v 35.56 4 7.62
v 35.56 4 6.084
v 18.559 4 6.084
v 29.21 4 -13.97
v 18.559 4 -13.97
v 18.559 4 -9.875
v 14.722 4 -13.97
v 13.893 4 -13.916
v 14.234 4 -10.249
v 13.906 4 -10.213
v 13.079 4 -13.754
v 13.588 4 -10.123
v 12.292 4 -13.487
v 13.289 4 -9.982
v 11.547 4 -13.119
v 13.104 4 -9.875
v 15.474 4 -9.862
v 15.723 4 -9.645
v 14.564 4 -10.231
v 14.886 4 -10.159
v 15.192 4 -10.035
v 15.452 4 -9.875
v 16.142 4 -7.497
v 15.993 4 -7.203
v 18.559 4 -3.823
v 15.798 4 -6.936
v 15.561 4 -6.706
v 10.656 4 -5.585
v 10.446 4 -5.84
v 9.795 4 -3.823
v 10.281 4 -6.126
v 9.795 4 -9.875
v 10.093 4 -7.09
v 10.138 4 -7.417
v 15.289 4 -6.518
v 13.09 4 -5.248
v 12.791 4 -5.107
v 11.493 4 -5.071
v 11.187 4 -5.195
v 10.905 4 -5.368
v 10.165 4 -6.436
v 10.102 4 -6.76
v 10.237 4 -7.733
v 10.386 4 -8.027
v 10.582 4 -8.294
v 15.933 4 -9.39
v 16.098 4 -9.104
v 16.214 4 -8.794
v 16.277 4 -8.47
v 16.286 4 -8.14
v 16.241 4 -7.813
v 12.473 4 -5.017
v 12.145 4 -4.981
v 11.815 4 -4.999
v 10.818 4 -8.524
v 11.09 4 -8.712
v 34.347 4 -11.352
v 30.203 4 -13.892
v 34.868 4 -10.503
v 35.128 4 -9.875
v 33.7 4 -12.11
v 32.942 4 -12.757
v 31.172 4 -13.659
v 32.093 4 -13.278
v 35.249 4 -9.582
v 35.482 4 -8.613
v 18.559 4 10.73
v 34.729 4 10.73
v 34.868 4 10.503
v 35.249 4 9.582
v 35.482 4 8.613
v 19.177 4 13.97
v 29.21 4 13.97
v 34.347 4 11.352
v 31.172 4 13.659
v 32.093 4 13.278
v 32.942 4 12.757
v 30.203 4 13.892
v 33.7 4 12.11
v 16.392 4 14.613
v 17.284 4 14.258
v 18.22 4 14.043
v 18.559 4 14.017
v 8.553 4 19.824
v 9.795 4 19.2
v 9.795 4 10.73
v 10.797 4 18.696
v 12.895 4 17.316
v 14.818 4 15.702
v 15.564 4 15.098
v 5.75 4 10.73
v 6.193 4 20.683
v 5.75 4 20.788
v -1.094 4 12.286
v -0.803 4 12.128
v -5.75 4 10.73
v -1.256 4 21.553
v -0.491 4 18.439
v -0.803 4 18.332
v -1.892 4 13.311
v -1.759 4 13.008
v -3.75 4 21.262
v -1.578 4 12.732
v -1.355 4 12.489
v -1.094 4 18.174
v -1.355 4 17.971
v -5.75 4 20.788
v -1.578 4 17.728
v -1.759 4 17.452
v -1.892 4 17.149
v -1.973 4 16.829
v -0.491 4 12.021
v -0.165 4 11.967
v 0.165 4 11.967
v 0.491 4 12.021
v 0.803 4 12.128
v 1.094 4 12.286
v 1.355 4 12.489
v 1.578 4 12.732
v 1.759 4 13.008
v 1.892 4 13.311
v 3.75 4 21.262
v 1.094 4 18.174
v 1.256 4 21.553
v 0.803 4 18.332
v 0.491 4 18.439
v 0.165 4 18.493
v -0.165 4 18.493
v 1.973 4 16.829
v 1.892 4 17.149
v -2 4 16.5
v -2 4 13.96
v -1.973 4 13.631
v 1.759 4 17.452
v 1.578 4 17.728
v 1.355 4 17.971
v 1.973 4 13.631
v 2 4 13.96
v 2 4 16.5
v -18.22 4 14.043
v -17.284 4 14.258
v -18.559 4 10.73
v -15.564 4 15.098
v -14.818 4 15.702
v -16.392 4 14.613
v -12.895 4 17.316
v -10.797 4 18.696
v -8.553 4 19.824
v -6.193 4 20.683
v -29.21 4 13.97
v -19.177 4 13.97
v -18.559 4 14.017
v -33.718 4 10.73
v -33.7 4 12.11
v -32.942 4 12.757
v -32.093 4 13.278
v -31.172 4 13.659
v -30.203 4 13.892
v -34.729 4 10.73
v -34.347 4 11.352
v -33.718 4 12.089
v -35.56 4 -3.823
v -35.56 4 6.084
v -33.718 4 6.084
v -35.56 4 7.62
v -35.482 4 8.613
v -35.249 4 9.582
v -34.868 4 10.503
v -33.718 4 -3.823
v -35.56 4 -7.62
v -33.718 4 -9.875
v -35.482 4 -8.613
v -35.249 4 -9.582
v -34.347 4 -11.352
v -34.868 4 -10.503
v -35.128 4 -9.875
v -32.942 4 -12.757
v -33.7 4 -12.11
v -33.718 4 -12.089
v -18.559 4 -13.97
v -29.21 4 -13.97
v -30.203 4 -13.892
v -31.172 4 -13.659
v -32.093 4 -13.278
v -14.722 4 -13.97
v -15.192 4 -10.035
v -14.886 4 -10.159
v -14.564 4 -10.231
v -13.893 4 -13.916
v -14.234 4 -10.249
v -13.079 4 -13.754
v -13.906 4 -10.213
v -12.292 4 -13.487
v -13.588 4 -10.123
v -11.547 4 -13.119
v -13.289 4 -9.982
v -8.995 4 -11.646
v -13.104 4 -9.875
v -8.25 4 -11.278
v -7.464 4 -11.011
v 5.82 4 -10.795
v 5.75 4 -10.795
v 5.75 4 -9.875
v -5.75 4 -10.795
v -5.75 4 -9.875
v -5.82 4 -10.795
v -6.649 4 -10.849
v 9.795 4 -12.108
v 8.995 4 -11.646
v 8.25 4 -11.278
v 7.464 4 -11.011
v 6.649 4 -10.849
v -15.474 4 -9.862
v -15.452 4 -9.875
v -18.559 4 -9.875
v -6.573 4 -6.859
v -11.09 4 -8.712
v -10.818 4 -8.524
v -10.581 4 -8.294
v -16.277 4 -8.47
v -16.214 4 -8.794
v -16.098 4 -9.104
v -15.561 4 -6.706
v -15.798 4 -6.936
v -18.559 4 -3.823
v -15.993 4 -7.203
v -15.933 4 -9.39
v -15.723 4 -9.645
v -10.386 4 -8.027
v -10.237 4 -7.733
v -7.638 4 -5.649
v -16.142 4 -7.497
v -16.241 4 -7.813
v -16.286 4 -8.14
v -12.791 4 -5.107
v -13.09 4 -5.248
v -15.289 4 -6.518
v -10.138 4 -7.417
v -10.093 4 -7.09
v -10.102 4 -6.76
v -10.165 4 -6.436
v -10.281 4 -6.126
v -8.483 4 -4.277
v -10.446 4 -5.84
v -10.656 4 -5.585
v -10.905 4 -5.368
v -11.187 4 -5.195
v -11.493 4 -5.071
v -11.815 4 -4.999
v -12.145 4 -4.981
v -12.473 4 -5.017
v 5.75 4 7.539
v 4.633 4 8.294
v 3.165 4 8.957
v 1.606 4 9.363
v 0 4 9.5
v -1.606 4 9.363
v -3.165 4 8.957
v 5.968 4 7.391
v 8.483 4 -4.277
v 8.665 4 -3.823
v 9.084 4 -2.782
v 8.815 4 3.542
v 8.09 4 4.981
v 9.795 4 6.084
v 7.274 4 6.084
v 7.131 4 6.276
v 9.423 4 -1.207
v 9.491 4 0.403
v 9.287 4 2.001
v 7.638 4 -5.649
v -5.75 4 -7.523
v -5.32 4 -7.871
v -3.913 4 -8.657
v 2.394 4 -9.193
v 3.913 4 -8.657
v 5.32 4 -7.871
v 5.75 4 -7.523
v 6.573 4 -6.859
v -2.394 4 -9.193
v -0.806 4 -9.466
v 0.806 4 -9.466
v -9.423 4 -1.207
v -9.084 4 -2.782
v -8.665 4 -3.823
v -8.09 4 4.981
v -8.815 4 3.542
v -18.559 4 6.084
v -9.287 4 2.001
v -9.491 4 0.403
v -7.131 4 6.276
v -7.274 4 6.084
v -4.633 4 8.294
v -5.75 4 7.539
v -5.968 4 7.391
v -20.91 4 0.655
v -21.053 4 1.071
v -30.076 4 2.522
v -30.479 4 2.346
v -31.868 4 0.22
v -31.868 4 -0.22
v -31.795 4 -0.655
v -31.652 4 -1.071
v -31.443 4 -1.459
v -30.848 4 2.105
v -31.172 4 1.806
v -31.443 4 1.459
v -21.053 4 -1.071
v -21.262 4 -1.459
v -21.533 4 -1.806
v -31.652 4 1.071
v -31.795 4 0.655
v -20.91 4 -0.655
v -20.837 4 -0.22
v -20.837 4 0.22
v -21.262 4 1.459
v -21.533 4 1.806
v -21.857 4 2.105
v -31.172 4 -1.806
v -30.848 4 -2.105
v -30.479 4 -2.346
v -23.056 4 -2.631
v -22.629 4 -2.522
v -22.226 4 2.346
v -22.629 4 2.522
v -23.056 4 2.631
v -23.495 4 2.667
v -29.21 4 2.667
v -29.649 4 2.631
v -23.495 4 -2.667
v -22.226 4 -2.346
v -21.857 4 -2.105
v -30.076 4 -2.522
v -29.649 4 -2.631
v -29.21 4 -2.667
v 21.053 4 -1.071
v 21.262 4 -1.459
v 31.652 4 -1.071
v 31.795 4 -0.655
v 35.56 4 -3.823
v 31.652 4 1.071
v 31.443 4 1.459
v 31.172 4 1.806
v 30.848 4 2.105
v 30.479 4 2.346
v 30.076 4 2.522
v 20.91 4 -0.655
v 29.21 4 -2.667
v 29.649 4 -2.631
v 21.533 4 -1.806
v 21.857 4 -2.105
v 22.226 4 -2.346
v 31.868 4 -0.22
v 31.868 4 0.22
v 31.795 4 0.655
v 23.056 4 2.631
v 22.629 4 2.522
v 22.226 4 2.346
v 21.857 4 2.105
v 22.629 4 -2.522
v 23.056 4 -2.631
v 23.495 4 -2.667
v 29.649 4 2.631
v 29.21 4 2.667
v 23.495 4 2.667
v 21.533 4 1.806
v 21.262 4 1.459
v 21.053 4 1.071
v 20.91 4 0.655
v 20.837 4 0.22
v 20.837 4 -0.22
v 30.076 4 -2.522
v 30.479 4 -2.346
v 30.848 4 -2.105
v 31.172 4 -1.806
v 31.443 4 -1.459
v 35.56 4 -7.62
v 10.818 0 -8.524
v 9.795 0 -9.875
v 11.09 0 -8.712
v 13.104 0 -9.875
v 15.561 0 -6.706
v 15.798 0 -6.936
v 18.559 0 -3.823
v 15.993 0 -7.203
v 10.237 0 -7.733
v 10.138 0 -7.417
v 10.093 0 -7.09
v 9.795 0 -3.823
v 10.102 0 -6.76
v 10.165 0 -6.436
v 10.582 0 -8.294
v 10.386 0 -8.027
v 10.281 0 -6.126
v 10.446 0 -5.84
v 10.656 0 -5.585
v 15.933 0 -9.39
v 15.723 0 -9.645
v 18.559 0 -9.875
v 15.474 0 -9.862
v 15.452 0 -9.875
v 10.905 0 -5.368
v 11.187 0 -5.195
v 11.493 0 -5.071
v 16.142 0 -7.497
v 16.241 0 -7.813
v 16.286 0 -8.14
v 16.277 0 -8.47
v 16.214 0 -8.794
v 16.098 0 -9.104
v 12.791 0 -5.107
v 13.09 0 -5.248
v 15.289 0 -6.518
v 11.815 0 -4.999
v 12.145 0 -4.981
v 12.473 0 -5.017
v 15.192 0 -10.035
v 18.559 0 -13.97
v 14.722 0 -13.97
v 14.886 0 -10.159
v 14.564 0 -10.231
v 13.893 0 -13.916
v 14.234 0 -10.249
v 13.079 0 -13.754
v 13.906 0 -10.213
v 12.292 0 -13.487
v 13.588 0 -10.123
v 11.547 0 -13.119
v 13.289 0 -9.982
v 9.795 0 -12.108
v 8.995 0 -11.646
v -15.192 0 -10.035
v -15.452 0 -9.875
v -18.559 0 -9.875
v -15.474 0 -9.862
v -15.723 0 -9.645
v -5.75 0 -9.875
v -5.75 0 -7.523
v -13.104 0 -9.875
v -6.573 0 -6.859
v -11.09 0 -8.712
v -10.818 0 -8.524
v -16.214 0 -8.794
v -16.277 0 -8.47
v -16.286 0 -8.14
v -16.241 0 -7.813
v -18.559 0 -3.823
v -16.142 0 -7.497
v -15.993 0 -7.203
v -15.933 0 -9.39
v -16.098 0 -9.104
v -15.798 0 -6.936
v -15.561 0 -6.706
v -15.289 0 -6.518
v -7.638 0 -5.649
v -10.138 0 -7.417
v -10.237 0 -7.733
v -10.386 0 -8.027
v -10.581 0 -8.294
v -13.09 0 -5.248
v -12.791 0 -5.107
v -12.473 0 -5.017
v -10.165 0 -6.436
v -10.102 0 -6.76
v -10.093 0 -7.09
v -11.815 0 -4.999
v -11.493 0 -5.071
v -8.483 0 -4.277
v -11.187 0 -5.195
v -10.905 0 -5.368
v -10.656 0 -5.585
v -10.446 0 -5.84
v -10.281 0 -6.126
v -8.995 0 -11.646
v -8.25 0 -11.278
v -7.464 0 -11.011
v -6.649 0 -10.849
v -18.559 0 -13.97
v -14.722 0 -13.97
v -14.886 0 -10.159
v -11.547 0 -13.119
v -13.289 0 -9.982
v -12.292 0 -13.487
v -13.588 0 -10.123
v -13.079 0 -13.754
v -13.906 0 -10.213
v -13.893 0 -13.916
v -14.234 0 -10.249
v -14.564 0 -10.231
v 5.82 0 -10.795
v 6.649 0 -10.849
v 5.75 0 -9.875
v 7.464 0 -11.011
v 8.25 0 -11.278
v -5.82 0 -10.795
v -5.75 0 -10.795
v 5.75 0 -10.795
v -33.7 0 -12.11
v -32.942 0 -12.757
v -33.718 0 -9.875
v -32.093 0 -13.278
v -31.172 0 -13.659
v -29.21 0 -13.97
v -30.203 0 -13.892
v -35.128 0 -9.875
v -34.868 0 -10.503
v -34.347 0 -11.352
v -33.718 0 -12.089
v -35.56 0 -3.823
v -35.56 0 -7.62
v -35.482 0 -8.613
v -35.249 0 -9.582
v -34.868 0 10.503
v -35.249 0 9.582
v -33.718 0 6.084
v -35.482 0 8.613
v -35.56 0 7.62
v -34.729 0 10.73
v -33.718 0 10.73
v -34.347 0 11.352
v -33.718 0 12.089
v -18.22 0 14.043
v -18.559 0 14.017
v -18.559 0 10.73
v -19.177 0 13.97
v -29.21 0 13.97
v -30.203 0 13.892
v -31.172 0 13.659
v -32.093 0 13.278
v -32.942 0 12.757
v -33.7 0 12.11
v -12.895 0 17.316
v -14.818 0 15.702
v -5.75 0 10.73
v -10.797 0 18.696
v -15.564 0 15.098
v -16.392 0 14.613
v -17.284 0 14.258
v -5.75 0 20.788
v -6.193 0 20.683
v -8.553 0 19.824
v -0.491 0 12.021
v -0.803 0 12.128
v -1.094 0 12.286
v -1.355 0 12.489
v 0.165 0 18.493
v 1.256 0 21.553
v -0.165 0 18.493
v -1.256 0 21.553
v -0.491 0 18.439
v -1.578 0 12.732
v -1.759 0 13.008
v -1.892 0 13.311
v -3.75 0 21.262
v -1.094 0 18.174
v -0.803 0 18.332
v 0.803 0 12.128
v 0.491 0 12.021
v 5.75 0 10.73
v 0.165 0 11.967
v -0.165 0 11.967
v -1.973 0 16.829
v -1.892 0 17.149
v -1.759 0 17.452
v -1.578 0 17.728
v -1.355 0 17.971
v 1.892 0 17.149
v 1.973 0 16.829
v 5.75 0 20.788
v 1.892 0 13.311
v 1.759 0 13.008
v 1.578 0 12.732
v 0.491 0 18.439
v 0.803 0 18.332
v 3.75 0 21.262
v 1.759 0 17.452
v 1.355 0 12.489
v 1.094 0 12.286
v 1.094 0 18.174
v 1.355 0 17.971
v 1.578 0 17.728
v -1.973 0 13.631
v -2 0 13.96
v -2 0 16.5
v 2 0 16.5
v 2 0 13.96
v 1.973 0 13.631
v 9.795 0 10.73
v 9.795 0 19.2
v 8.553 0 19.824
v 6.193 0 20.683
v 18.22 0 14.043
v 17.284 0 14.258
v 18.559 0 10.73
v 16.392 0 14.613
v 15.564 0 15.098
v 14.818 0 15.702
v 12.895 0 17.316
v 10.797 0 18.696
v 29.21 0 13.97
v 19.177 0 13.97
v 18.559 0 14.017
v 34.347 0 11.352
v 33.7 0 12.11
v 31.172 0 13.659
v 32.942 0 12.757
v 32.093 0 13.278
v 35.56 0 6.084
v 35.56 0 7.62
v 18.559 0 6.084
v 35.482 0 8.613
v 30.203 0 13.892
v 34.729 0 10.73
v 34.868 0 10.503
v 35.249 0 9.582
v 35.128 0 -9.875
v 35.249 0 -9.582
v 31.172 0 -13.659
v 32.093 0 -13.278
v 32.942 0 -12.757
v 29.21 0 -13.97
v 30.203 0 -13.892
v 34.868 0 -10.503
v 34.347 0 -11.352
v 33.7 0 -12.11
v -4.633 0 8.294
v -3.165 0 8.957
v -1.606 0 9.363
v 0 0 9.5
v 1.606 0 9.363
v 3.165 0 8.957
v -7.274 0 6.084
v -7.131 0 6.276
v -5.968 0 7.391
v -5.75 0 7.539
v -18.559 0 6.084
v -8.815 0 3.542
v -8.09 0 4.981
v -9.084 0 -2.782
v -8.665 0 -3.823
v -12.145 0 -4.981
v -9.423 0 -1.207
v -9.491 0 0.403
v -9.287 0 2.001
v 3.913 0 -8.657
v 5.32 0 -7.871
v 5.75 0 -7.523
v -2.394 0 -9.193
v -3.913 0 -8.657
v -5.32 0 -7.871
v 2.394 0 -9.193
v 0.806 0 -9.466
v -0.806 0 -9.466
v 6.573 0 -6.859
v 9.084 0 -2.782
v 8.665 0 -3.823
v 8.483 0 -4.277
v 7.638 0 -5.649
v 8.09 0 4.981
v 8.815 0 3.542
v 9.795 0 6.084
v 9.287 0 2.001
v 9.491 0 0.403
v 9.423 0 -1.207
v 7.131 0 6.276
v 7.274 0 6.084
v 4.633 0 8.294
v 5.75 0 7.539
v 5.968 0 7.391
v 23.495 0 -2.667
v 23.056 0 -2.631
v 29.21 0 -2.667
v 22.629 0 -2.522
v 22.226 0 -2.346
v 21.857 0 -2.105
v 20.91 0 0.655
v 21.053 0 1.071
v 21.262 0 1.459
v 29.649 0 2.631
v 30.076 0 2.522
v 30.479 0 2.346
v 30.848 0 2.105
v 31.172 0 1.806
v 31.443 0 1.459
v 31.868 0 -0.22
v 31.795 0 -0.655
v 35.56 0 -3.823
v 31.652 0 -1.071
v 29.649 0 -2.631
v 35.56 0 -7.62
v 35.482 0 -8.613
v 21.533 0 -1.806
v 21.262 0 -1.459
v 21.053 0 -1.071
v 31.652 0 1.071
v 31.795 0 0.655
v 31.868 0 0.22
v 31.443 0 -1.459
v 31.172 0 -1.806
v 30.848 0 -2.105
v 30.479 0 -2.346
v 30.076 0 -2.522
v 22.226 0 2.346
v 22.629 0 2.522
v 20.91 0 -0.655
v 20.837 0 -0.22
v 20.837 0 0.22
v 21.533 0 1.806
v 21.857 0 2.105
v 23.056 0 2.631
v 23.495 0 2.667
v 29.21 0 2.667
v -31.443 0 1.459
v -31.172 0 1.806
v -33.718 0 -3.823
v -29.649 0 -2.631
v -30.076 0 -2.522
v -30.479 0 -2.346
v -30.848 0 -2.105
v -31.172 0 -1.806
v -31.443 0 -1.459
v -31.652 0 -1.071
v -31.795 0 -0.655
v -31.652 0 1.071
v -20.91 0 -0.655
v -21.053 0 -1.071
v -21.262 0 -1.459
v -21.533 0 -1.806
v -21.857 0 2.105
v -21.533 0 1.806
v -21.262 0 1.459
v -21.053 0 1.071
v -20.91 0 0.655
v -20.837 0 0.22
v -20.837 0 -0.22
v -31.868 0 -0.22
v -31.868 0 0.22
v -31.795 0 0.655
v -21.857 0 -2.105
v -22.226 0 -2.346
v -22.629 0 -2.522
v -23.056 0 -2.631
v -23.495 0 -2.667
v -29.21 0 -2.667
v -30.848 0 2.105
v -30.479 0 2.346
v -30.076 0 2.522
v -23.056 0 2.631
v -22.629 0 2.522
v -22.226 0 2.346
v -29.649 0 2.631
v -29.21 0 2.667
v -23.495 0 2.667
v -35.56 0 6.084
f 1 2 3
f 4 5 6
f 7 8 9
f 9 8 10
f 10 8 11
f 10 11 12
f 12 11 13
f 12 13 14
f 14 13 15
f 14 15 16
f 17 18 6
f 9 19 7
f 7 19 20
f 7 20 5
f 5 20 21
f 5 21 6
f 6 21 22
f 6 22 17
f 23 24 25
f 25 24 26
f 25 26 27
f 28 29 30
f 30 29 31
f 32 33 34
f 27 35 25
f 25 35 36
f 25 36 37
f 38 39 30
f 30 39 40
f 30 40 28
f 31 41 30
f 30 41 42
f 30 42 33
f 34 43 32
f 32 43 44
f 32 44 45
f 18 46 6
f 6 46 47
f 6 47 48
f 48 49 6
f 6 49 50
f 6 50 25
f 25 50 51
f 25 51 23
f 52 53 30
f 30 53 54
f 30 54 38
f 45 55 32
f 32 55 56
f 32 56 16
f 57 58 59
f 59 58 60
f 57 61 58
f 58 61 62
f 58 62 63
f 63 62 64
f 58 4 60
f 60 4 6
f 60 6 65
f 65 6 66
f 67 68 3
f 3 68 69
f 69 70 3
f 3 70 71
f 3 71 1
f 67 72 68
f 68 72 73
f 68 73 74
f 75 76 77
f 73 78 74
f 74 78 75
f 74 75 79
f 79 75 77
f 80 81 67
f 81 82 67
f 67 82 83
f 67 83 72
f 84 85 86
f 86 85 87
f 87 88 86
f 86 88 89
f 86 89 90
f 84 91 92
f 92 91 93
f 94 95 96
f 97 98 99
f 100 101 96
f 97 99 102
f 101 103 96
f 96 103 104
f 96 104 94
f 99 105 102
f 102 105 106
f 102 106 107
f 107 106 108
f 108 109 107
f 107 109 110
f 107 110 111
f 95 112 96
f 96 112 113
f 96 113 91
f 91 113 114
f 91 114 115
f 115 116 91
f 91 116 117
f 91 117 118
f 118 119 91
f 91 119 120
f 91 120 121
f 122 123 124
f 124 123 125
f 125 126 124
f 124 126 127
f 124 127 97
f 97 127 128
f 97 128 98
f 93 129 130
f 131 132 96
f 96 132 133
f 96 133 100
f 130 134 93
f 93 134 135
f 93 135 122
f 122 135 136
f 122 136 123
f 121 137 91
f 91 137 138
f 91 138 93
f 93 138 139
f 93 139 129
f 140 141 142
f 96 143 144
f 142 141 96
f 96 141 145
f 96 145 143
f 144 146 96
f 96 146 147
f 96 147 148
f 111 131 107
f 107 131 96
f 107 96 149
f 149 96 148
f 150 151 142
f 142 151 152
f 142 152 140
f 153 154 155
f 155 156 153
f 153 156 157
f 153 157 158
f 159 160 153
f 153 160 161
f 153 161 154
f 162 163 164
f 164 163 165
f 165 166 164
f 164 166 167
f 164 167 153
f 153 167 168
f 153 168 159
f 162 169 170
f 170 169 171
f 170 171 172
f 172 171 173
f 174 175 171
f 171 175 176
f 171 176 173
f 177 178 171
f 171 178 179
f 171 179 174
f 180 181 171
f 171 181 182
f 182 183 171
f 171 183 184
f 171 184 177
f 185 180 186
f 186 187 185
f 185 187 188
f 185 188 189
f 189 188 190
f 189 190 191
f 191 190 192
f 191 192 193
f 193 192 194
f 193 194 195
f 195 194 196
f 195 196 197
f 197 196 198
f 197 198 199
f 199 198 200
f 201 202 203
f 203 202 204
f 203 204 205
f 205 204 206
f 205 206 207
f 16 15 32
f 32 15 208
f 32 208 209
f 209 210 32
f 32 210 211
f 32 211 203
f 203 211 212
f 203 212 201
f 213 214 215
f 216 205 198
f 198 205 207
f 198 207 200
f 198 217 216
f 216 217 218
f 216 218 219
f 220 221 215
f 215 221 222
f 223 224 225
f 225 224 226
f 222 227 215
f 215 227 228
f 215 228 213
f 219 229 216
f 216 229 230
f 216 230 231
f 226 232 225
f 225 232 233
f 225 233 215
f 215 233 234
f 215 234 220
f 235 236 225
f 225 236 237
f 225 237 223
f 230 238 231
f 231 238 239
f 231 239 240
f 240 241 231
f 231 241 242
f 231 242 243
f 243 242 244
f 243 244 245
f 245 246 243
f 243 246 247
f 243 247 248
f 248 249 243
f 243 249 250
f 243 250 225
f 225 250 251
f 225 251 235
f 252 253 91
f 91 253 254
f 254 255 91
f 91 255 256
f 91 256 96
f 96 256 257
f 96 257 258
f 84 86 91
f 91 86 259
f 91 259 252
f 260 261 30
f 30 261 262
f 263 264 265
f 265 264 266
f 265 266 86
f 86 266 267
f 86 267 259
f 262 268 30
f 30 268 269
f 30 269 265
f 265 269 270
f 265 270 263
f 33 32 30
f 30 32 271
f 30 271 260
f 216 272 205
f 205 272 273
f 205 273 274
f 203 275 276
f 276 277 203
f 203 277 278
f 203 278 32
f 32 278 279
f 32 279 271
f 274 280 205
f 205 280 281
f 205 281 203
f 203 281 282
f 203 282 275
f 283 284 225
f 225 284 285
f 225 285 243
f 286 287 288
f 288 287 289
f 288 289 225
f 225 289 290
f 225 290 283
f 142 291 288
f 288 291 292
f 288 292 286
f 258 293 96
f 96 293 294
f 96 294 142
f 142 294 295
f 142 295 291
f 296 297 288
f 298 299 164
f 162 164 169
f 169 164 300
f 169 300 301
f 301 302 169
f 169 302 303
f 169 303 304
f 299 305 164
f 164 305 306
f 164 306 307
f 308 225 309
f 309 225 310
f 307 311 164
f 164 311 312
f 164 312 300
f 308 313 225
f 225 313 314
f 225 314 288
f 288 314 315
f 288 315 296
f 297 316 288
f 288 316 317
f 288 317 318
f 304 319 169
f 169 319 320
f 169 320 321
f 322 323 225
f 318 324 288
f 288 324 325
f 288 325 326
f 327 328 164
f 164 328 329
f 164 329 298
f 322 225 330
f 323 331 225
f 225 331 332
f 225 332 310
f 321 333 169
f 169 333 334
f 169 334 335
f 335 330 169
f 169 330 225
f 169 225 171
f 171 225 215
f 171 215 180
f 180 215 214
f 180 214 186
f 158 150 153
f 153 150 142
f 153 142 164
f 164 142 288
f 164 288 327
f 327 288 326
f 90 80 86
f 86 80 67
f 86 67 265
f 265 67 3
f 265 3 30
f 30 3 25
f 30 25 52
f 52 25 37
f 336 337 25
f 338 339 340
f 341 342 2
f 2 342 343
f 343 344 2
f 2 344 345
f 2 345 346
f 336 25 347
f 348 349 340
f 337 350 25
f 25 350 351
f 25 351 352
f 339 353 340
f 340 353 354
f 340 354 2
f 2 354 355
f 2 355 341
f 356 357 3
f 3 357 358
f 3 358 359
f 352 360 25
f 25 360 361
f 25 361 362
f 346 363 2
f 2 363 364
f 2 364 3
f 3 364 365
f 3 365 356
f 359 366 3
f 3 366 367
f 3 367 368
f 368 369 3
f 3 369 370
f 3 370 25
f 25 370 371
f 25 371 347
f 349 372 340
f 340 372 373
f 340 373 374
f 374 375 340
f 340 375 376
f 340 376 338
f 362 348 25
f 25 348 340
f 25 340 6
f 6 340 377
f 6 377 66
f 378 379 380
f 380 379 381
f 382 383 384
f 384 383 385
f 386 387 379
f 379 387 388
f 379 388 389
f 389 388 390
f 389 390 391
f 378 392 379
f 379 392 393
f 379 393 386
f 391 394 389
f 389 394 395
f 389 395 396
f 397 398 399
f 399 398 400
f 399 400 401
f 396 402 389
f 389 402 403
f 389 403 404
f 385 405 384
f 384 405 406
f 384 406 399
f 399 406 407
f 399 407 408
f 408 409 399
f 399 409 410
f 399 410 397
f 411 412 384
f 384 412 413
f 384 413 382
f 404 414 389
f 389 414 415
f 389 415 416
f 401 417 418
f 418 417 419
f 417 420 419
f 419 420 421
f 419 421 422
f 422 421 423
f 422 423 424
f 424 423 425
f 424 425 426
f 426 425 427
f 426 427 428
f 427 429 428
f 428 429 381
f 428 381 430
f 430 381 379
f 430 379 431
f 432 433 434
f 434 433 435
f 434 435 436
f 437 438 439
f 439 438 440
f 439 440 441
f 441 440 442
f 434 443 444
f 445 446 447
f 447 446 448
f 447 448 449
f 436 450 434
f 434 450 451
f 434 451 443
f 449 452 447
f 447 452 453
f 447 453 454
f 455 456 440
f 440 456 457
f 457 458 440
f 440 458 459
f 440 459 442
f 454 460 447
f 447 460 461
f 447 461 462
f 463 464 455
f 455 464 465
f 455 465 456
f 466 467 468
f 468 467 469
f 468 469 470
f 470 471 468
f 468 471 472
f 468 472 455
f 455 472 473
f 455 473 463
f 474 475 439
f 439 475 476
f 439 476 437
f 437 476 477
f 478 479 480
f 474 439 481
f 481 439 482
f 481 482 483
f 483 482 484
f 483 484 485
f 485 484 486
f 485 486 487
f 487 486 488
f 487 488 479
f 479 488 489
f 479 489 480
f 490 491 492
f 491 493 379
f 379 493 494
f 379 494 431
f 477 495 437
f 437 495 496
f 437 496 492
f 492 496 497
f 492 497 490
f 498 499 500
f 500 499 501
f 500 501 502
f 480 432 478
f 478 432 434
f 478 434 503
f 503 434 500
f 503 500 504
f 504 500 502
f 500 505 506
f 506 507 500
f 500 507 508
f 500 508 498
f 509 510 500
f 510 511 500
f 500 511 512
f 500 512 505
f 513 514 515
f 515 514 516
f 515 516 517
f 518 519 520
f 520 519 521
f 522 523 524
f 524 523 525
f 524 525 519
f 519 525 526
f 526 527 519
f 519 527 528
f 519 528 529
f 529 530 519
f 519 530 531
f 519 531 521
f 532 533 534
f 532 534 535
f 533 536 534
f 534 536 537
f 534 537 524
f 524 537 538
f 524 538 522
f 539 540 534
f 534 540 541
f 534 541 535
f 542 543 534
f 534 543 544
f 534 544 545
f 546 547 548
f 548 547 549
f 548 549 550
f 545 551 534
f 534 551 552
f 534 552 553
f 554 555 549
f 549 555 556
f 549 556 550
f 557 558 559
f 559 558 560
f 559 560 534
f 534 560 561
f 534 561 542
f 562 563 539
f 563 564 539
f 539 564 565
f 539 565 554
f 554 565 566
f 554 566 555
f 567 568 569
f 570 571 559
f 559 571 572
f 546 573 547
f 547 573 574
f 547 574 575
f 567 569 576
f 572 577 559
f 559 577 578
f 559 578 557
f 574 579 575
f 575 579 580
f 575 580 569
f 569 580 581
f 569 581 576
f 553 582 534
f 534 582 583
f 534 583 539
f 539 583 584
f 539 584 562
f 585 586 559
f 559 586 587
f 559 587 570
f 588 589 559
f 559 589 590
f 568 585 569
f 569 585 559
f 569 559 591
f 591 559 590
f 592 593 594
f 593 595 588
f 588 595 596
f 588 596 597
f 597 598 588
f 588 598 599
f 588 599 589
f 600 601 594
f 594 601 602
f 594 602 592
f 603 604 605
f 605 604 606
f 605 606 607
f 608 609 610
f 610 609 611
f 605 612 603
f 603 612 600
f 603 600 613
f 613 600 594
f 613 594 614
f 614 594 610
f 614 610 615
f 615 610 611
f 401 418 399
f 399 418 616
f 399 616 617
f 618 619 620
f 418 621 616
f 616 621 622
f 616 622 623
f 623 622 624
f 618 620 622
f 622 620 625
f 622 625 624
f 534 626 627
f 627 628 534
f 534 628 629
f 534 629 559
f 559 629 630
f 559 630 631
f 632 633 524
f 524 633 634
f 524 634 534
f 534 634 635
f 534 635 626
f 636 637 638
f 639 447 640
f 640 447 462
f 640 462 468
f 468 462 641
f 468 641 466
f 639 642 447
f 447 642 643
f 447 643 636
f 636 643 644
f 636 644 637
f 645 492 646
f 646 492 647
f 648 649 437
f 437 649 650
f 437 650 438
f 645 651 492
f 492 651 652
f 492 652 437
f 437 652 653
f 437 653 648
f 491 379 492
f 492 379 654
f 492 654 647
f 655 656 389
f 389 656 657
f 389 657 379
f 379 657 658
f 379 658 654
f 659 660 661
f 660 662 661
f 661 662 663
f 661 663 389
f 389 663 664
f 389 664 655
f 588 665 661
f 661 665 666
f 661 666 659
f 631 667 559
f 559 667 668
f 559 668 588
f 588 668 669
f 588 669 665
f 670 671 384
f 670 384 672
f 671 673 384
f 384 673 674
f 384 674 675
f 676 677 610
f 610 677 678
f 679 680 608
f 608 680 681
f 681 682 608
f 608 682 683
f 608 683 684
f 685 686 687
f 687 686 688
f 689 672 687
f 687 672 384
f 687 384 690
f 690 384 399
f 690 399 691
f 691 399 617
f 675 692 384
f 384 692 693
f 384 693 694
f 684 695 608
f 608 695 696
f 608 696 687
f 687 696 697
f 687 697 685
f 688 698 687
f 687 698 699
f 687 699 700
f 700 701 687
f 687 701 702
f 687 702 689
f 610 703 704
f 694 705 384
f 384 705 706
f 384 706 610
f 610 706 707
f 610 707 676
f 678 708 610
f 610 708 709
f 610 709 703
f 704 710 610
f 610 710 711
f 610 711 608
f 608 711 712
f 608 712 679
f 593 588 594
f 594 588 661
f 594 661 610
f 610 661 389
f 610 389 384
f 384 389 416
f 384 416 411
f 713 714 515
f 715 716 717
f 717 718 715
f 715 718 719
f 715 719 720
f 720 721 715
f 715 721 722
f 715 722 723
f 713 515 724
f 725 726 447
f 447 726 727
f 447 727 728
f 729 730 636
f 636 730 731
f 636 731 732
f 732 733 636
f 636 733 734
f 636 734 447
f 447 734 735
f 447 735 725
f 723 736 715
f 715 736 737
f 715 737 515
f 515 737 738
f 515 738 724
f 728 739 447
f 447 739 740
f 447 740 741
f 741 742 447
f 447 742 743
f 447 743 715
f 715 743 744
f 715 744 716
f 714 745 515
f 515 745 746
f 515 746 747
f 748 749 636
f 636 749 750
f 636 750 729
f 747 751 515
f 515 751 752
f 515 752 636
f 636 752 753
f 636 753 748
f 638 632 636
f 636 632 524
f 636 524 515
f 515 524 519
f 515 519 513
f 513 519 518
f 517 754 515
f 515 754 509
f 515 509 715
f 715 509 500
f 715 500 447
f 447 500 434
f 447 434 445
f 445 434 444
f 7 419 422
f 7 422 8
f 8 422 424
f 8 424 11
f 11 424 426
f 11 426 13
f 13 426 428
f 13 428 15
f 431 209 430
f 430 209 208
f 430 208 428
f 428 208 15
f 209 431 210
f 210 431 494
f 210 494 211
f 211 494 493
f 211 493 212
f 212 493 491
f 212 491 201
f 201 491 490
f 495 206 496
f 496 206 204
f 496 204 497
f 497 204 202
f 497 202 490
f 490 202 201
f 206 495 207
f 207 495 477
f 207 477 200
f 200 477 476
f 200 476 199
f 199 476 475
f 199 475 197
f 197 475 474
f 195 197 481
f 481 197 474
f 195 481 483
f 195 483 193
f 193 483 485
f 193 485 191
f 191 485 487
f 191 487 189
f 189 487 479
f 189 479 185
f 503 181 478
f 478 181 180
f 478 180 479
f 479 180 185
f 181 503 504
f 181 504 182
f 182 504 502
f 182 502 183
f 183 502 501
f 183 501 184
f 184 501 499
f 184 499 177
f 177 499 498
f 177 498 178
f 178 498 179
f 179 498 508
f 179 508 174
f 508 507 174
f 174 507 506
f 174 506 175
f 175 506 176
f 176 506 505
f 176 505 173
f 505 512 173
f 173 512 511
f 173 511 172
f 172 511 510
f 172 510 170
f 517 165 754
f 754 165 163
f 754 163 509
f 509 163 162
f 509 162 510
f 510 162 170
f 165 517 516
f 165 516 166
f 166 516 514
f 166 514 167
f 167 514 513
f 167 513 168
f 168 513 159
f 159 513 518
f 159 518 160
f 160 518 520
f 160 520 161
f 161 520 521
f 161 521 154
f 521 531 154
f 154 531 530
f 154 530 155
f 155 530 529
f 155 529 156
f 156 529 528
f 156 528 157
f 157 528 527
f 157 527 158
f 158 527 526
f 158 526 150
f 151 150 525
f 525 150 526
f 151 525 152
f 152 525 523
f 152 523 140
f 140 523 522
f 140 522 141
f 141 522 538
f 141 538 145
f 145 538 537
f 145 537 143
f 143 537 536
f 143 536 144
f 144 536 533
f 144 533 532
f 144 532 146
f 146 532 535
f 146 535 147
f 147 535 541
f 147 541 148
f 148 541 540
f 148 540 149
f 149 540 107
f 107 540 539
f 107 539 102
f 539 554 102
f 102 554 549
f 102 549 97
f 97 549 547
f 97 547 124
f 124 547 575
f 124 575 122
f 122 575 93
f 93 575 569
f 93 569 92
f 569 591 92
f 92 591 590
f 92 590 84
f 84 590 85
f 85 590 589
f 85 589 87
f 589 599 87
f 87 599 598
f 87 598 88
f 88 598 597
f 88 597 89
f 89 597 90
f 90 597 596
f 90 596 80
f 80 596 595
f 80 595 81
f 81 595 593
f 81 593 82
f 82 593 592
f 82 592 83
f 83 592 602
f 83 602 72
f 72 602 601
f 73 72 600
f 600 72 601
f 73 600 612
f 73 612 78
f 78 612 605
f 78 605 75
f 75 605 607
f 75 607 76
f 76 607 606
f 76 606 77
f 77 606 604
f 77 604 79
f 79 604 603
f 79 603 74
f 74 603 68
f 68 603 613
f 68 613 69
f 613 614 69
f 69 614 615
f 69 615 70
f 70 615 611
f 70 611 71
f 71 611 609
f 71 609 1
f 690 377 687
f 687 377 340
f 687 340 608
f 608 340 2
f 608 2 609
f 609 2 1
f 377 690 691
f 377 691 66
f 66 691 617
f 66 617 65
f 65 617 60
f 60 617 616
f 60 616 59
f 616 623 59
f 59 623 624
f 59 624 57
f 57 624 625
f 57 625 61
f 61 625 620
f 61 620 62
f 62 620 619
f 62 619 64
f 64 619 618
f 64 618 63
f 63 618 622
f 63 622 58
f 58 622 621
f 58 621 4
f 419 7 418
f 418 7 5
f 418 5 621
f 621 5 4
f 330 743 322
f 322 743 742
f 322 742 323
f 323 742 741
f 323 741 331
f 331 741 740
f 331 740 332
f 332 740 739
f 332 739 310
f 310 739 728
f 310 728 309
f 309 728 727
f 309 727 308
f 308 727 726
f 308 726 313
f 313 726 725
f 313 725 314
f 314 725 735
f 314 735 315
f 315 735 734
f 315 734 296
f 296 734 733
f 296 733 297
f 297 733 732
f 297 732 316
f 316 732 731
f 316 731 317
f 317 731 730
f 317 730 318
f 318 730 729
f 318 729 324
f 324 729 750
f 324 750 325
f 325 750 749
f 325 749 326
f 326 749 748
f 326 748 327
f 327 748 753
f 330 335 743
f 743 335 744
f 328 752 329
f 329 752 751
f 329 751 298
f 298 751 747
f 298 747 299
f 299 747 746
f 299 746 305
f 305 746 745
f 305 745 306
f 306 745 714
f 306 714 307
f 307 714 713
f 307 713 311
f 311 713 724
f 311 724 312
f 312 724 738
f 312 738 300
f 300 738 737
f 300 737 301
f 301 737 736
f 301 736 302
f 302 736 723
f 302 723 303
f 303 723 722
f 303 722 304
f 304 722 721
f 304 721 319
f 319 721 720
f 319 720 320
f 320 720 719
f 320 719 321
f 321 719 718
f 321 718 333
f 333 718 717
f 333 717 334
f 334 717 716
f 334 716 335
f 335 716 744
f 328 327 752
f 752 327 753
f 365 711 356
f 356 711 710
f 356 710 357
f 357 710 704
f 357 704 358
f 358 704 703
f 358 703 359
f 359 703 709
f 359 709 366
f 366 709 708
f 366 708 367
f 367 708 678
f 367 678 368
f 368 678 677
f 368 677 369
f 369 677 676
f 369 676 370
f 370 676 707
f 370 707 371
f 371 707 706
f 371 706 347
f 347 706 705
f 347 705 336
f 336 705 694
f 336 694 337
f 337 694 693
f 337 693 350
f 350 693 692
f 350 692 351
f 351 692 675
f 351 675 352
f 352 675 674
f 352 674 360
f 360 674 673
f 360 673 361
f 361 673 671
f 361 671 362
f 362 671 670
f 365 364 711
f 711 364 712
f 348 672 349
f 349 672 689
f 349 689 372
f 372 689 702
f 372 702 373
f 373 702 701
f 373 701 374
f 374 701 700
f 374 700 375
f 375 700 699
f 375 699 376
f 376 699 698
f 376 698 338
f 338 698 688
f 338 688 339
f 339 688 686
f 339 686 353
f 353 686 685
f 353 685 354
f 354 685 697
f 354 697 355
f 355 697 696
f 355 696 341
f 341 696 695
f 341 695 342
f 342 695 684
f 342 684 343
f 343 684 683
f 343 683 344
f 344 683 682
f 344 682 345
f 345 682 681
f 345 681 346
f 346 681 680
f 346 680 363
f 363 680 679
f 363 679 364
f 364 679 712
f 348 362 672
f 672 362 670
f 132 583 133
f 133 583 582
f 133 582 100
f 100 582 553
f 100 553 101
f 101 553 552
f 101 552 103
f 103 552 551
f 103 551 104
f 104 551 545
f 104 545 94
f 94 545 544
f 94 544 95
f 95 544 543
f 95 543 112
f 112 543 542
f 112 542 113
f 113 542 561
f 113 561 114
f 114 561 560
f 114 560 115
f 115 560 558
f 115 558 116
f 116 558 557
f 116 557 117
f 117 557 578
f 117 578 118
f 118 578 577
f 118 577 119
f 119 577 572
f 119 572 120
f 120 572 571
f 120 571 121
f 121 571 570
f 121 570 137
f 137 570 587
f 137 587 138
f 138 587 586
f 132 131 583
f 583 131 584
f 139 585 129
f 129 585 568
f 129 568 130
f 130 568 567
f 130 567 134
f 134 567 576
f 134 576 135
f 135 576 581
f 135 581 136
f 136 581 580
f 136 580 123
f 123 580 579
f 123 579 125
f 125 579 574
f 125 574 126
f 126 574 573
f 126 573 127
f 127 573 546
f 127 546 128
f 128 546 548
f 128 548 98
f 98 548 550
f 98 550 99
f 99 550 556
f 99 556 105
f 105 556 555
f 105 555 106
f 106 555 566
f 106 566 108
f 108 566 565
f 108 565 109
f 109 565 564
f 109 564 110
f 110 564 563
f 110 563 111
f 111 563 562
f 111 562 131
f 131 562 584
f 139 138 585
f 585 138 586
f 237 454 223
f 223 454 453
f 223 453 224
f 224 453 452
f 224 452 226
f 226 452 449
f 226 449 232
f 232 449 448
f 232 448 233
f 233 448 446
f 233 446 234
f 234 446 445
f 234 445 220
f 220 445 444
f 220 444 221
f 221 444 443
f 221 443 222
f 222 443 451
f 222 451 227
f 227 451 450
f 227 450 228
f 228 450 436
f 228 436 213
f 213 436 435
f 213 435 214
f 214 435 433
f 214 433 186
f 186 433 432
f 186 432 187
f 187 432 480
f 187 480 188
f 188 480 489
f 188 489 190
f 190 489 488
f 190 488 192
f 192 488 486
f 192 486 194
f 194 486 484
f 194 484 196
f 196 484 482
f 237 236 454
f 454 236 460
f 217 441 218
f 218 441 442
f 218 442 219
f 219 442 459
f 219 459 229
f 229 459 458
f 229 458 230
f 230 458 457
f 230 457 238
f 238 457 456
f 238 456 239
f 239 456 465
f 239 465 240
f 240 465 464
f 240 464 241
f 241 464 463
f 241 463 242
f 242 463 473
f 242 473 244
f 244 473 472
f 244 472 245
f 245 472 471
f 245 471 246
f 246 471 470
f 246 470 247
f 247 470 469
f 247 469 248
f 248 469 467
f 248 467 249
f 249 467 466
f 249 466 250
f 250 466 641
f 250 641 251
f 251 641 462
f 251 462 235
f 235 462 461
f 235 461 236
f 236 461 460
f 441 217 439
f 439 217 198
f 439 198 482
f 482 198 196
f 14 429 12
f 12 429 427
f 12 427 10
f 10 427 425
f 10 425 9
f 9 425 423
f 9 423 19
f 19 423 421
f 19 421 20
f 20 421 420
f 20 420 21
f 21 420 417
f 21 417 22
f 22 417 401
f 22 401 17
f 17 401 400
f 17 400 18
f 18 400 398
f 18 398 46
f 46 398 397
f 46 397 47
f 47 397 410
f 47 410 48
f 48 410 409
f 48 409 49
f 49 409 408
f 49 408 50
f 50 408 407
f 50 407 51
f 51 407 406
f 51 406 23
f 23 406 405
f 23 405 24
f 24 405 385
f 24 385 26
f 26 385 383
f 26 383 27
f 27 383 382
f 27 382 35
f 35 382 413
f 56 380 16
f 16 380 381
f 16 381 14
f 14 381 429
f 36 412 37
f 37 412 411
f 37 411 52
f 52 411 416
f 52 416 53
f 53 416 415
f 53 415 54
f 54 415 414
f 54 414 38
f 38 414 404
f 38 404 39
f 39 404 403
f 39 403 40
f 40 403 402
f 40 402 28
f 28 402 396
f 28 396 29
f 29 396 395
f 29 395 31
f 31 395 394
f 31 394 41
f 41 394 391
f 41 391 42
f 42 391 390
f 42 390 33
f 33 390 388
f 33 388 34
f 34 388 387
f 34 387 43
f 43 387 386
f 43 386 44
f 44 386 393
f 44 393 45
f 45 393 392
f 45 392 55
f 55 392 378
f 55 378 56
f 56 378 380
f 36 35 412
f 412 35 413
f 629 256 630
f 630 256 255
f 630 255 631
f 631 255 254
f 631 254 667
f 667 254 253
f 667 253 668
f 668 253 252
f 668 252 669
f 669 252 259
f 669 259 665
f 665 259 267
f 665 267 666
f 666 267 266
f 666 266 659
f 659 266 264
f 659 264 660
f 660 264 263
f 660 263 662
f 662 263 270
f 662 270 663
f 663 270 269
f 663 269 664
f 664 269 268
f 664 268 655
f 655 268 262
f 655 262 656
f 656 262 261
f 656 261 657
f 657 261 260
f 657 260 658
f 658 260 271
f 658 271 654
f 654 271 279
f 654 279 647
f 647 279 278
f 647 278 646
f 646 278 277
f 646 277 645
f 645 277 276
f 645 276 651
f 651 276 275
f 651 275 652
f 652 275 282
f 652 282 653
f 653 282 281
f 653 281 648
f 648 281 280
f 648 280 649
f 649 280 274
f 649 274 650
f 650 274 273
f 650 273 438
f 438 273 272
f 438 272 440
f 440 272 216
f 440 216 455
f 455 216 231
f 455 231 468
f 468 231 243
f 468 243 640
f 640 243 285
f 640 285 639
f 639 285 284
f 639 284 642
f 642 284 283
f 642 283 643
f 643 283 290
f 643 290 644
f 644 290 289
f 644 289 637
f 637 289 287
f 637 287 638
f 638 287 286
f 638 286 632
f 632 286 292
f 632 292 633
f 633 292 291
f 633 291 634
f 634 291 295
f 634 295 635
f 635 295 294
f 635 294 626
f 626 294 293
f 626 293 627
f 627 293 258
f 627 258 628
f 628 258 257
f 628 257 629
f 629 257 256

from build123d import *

# Parameters (mm, degrees)
SKETCH1_R           = 5.75
BOSS_EXTRUDE1_DEPTH = 4
SKETCH6_R           = 9.5
CUT_EXTRUDE1_DEPTH  = 5


with BuildPart() as part:
    # Sketch1 → Boss-Extrude1 (new body)
    with BuildSketch(Plane(origin=(0, 0, 0), x_dir=(1, 0, 0), z_dir=(0, 1, 0))):
        with BuildLine():
            Line((14.722227154, 13.97), (29.21, 13.97))
            ThreePointArc((29.21, 13.97), (33.700128061, 12.110128061), (35.56, 7.62))
            Line((35.56, 7.62), (35.56, -7.62))
            ThreePointArc((35.56, -7.62), (33.700128061, -12.110128061), (29.21, -13.97))
            Line((29.21, -13.97), (19.176579466, -13.97))
            ThreePointArc((19.176579466, -13.97), (16.831686562, -14.418815604), (14.818265951, -15.701818182))
            ThreePointArc((14.818265951, -15.701818182), (0, -21.59), (-14.818265951, -15.701818182))
            ThreePointArc((-14.818265951, -15.701818182), (-16.831686562, -14.418815604), (-19.176579466, -13.97))
            Line((-19.176579466, -13.97), (-29.21, -13.97))
            ThreePointArc((-29.21, -13.97), (-33.700128061, -12.110128061), (-35.56, -7.62))
            Line((-35.56, -7.62), (-35.56, 7.62))
            ThreePointArc((-35.56, 7.62), (-33.700128061, 12.110128061), (-29.21, 13.97))
            Line((-29.21, 13.97), (-14.722227154, 13.97))
            ThreePointArc((-14.722227154, 13.97), (-13.078726217, 13.753628997), (-11.547227154, 13.119261314))
            Line((-11.547227154, 13.119261314), (-8.995011096, 11.645738686))
            ThreePointArc((-8.995011096, 11.645738686), (-7.463512032, 11.011371003), (-5.820011096, 10.795))
            Line((-5.820011096, 10.795), (5.820011096, 10.795))
            ThreePointArc((5.820011096, 10.795), (7.463512032, 11.011371003), (8.995011096, 11.645738686))
            Line((8.995011096, 11.645738686), (11.547227154, 13.119261314))
            ThreePointArc((11.547227154, 13.119261314), (13.078726217, 13.753628997), (14.722227154, 13.97))
        make_face()
        Circle(SKETCH1_R, mode=Mode.SUBTRACT)
        with BuildLine():
            Line((-23.495, -2.667), (-29.21, -2.667))
            ThreePointArc((-29.21, -2.667), (-31.877, 0), (-29.21, 2.667))
            Line((-29.21, 2.667), (-23.495, 2.667))
            ThreePointArc((-23.495, 2.667), (-20.828, 0), (-23.495, -2.667))
        make_face(mode=Mode.SUBTRACT)
        with BuildLine():
            Line((23.495, 2.667), (29.21, 2.667))
            ThreePointArc((29.21, 2.667), (31.877, 0), (29.21, -2.667))
            Line((29.21, -2.667), (23.495, -2.667))
            ThreePointArc((23.495, -2.667), (20.828, 0), (23.495, 2.667))
        make_face(mode=Mode.SUBTRACT)
        with BuildLine():
            Line((-15.289419162, 6.517949192), (-13.089714637, 5.247949192))
            ThreePointArc((-13.089714637, 5.247949192), (-10.357663829, 5.98), (-11.089714637, 8.712050808))
            Line((-11.089714637, 8.712050808), (-13.289419162, 9.982050808))
            ThreePointArc((-13.289419162, 9.982050808), (-16.02146997, 9.25), (-15.289419162, 6.517949192))
        make_face(mode=Mode.SUBTRACT)
        with BuildLine():
            Line((13.289419162, 9.982050808), (11.089714637, 8.712050808))
            ThreePointArc((11.089714637, 8.712050808), (10.357663829, 5.98), (13.089714637, 5.247949192))
            Line((13.089714637, 5.247949192), (15.289419162, 6.517949192))
            ThreePointArc((15.289419162, 6.517949192), (16.02146997, 9.25), (13.289419162, 9.982050808))
        make_face(mode=Mode.SUBTRACT)
        with BuildLine():
            Line((2, -16.5), (2, -13.96))
            ThreePointArc((2, -13.96), (0, -11.96), (-2, -13.96))
            Line((-2, -13.96), (-2, -16.5))
            ThreePointArc((-2, -16.5), (0, -18.5), (2, -16.5))
        make_face(mode=Mode.SUBTRACT)
    extrude(amount=BOSS_EXTRUDE1_DEPTH)

    # Sketch6 → Cut-Extrude1 (cut, through all)
    with BuildSketch(Plane(origin=(0, 4, 0), x_dir=(1, 0, 0), z_dir=(0, 1, 0))):
        Circle(SKETCH6_R)
    extrude(amount=-CUT_EXTRUDE1_DEPTH, mode=Mode.SUBTRACT)


solid = part.part
